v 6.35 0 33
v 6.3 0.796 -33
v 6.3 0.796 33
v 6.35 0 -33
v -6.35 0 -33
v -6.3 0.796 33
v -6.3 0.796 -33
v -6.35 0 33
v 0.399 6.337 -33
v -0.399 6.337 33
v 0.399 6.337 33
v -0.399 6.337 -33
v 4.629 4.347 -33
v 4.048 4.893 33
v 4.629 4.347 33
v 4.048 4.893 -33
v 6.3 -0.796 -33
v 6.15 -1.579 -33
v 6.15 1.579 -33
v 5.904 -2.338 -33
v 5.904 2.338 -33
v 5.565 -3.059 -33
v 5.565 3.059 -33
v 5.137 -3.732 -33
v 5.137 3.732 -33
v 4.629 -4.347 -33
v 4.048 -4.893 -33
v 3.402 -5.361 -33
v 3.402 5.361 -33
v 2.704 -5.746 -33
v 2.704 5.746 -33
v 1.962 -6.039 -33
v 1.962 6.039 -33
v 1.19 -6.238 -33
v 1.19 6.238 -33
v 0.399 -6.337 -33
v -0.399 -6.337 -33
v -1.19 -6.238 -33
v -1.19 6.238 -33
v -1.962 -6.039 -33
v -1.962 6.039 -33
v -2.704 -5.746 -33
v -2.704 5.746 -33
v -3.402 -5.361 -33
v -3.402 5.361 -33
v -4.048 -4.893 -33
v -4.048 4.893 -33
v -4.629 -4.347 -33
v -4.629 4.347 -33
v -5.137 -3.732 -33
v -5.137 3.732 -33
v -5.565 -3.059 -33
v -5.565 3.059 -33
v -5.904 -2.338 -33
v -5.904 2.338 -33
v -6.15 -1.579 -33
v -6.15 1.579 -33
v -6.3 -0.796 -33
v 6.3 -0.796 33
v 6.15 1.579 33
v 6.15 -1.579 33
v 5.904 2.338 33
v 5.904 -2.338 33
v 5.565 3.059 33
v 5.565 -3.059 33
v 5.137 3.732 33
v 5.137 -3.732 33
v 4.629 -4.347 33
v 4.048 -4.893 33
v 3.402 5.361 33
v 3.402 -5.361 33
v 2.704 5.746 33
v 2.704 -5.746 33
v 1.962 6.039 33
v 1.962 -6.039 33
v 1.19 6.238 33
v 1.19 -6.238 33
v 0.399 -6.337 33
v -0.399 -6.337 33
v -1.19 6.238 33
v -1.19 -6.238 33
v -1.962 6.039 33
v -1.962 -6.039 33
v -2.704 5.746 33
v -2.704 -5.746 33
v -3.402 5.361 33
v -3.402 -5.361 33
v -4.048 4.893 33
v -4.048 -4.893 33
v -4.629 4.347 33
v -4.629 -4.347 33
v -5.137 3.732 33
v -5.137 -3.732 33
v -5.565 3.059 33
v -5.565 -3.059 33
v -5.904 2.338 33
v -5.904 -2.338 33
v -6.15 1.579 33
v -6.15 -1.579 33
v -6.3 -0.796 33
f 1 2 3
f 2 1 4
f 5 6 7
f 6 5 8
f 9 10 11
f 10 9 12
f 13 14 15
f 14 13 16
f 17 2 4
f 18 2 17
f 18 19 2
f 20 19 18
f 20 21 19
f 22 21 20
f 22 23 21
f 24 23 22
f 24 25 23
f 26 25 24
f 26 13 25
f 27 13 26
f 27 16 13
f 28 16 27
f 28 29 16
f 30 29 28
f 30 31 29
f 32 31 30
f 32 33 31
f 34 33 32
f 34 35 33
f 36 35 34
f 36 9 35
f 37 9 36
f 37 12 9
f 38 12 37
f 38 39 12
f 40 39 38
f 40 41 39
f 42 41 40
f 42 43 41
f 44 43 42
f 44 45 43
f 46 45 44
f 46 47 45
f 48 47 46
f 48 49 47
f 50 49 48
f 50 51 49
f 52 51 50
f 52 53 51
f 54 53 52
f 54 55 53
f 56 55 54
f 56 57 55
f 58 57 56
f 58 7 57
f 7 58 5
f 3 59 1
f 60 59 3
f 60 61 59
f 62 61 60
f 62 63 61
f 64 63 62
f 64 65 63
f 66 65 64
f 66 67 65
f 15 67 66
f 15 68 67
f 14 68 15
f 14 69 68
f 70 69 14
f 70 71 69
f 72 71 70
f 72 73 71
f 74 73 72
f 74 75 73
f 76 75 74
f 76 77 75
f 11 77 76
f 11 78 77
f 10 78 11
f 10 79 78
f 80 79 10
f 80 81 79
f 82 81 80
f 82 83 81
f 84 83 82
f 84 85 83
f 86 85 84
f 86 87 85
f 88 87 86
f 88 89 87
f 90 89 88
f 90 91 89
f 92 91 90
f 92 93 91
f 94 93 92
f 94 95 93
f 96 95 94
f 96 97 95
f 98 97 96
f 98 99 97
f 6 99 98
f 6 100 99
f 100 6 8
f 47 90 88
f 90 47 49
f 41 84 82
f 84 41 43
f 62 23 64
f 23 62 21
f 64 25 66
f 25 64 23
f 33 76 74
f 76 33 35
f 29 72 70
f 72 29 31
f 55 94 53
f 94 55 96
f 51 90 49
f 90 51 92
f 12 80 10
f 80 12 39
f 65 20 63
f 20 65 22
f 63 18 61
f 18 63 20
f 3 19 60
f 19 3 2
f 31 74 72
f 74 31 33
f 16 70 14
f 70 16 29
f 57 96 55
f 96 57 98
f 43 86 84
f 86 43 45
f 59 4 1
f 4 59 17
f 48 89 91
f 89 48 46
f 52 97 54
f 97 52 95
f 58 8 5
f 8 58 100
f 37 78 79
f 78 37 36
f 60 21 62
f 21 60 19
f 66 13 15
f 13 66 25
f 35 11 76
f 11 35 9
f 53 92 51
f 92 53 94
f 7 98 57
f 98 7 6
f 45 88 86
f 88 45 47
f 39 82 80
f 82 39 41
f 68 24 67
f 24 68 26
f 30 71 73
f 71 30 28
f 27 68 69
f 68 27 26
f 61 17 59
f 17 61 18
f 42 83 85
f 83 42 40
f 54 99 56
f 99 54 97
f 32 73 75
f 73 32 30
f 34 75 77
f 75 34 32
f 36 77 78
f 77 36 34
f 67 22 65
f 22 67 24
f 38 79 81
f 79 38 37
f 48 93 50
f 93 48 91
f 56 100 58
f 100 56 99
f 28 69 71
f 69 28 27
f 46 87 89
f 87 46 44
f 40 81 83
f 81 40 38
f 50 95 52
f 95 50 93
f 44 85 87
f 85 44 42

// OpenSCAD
$fn = 50;


difference() {
	union() {
		translate(v = [0, 0, -33.0000000000]) {
			cylinder(h = 66, r = 6.3500000000);
		}
	}
	union() {
		translate(v = [0, 0, -100.0000000000]) {
			cylinder(h = 200, r = 0);
		}
	}
}
